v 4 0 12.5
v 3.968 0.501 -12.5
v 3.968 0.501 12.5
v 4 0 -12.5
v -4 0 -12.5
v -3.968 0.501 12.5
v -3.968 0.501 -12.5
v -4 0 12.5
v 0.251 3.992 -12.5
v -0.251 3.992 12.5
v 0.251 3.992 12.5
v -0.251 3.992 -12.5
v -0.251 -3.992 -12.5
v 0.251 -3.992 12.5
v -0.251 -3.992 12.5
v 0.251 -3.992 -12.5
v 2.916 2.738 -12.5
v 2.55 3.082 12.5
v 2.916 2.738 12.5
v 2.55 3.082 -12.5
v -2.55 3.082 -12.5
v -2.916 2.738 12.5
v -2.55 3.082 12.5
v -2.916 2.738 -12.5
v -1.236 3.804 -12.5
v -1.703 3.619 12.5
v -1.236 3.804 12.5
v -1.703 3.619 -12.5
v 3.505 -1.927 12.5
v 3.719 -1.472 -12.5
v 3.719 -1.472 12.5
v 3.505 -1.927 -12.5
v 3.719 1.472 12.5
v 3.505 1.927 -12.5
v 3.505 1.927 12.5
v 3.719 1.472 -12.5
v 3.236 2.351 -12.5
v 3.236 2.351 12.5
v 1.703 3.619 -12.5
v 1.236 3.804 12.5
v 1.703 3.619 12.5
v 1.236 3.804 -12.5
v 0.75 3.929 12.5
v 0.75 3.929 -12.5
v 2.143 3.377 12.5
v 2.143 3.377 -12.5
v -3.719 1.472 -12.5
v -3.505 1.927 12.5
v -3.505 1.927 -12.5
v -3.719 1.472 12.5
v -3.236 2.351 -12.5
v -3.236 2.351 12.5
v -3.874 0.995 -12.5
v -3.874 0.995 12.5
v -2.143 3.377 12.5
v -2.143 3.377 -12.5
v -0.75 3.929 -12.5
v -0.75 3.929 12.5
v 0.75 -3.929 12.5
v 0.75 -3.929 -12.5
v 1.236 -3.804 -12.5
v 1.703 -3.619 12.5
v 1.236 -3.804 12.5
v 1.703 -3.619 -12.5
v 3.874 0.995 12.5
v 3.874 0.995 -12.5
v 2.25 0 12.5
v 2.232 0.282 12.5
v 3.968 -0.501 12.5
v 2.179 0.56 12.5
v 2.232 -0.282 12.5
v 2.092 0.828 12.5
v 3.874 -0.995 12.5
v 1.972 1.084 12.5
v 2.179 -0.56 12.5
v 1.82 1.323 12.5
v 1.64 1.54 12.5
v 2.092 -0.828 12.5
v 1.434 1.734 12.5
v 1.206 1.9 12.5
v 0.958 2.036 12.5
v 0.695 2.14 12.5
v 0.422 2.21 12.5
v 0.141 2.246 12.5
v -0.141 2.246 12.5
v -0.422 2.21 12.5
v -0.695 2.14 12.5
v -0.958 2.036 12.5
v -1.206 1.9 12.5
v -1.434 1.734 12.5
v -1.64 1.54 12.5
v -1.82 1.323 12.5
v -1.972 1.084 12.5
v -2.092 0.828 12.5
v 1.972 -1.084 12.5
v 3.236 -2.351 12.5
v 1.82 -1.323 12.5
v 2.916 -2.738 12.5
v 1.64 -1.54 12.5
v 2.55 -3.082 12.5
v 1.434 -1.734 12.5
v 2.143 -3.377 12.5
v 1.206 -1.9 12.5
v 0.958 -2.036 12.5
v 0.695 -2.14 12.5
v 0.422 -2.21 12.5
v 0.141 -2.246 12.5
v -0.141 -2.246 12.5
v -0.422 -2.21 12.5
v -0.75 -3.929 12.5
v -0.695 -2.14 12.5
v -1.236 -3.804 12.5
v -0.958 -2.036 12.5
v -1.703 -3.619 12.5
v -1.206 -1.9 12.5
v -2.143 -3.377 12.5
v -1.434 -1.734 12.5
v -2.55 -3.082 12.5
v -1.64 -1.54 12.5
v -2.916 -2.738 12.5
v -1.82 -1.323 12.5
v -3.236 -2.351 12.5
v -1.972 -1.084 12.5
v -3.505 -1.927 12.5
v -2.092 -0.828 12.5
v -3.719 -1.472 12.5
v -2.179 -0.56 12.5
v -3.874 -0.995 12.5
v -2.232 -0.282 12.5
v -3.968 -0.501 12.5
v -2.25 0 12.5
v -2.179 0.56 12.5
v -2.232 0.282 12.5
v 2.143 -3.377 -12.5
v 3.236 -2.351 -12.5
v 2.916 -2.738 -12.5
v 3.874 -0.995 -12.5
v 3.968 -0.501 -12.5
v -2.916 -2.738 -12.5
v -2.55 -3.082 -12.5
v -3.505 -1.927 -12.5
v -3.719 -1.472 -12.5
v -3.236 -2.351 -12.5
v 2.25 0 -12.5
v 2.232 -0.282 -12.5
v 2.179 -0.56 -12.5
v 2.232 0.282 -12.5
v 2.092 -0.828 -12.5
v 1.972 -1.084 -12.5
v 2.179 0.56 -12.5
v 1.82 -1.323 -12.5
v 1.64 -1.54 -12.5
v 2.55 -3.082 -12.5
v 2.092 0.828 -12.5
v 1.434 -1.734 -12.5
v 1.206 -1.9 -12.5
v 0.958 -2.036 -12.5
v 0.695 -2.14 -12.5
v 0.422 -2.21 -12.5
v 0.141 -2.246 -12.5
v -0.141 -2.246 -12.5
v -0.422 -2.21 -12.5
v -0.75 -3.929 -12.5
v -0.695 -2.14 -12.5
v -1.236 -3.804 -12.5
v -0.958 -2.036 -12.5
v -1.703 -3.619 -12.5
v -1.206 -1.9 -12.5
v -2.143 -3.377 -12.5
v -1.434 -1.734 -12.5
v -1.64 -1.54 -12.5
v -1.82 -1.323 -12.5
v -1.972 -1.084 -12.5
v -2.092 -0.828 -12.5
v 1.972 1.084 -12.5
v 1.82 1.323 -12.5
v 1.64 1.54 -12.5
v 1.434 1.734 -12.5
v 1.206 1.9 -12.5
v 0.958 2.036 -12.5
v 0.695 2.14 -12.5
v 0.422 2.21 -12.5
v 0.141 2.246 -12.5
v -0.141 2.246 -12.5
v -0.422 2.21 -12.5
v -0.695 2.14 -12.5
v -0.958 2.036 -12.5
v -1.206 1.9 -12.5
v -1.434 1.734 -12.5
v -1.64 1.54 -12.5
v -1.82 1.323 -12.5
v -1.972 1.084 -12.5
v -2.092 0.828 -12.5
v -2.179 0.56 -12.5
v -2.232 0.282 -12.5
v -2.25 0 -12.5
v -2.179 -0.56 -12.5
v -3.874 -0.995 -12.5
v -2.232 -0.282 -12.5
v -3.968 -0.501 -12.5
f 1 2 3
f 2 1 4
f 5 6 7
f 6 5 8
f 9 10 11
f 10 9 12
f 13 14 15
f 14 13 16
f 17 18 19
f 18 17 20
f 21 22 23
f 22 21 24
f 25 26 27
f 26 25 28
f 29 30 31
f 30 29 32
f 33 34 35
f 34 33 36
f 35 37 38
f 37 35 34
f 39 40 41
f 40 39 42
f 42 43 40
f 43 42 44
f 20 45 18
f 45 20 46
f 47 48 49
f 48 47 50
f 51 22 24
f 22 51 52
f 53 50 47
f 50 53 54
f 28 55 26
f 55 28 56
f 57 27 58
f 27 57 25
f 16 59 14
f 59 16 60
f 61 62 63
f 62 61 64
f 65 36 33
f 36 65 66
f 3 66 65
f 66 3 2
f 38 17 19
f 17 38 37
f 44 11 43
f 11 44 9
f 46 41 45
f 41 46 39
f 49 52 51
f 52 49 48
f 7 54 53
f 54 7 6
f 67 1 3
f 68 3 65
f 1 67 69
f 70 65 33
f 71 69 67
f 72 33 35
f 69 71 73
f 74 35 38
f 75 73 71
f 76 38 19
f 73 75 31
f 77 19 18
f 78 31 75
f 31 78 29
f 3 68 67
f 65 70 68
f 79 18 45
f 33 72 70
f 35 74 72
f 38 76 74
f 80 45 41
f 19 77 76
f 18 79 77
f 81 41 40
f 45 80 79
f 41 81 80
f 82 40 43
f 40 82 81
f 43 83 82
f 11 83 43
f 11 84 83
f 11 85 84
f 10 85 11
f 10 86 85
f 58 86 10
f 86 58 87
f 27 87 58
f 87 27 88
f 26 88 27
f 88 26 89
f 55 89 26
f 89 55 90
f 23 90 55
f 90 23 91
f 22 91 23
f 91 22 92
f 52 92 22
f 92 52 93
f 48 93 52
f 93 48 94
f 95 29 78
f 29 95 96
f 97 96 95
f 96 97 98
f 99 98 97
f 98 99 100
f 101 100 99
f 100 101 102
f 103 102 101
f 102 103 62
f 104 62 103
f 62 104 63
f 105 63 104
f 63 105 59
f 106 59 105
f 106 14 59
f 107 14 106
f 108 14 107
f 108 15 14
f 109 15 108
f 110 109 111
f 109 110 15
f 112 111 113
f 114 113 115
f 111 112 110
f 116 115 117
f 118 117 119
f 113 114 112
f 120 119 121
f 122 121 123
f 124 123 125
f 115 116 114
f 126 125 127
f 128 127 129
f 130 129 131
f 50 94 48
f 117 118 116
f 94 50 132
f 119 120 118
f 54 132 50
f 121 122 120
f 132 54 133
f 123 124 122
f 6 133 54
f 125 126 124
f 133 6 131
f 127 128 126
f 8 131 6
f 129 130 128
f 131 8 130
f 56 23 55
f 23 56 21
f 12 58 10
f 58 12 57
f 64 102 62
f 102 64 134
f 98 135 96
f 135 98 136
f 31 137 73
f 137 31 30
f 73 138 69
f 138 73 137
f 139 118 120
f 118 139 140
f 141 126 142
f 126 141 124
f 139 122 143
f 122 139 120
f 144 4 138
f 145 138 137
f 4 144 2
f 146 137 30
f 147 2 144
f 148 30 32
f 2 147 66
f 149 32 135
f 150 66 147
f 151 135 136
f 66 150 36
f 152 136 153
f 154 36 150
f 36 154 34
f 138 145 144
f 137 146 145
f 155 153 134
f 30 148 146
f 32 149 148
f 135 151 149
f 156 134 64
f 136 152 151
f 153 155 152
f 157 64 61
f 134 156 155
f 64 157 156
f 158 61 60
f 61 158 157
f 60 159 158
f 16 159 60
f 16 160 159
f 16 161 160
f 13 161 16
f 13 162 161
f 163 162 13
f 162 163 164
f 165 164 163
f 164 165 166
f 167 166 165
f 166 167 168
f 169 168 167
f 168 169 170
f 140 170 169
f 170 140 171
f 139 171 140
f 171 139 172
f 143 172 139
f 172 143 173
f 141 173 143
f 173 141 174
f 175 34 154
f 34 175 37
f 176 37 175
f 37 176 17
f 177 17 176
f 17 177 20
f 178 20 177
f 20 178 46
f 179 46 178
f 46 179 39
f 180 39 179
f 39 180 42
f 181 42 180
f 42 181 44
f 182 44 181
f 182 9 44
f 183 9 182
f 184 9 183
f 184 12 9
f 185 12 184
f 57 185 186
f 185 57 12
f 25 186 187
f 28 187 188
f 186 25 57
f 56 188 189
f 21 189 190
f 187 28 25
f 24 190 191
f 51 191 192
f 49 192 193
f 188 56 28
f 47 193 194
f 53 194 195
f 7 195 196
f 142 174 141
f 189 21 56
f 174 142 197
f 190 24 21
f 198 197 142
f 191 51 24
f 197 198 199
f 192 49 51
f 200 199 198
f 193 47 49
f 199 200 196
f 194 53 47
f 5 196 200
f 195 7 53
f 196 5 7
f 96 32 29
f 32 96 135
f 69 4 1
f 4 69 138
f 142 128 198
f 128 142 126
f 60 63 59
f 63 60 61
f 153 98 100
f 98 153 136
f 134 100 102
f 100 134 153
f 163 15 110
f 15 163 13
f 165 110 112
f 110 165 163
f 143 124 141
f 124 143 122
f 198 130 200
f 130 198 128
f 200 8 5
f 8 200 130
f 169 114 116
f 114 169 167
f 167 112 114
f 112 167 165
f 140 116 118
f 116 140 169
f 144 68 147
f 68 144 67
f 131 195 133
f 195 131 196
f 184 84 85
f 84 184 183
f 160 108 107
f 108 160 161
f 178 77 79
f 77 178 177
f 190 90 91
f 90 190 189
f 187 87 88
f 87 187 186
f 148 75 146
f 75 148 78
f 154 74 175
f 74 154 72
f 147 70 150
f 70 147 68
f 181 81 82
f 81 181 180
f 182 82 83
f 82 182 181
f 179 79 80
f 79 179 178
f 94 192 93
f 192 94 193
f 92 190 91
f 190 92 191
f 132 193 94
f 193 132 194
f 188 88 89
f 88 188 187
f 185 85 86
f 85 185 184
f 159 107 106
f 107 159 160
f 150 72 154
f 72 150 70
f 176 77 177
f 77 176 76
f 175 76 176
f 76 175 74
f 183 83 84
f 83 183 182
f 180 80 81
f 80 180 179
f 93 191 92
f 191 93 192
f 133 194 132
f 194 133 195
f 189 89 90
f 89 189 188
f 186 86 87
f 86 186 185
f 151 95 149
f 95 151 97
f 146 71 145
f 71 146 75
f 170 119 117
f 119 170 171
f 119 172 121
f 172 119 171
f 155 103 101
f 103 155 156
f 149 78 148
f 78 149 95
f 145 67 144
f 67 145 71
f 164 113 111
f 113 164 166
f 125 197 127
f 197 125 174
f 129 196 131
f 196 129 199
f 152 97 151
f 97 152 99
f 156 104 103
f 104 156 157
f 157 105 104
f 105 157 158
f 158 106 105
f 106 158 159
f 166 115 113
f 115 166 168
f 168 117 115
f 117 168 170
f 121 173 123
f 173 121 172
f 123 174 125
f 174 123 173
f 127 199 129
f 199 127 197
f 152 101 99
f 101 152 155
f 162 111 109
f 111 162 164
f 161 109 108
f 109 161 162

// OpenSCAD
$fn = 50;


difference() {
	union() {
		translate(v = [0, 0, -12.5000000000]) {
			cylinder(h = 25, r = 4.0000000000);
		}
	}
	union() {
		translate(v = [0, 0, -100.0000000000]) {
			cylinder(h = 200, r = 2.2500000000);
		}
	}
}
